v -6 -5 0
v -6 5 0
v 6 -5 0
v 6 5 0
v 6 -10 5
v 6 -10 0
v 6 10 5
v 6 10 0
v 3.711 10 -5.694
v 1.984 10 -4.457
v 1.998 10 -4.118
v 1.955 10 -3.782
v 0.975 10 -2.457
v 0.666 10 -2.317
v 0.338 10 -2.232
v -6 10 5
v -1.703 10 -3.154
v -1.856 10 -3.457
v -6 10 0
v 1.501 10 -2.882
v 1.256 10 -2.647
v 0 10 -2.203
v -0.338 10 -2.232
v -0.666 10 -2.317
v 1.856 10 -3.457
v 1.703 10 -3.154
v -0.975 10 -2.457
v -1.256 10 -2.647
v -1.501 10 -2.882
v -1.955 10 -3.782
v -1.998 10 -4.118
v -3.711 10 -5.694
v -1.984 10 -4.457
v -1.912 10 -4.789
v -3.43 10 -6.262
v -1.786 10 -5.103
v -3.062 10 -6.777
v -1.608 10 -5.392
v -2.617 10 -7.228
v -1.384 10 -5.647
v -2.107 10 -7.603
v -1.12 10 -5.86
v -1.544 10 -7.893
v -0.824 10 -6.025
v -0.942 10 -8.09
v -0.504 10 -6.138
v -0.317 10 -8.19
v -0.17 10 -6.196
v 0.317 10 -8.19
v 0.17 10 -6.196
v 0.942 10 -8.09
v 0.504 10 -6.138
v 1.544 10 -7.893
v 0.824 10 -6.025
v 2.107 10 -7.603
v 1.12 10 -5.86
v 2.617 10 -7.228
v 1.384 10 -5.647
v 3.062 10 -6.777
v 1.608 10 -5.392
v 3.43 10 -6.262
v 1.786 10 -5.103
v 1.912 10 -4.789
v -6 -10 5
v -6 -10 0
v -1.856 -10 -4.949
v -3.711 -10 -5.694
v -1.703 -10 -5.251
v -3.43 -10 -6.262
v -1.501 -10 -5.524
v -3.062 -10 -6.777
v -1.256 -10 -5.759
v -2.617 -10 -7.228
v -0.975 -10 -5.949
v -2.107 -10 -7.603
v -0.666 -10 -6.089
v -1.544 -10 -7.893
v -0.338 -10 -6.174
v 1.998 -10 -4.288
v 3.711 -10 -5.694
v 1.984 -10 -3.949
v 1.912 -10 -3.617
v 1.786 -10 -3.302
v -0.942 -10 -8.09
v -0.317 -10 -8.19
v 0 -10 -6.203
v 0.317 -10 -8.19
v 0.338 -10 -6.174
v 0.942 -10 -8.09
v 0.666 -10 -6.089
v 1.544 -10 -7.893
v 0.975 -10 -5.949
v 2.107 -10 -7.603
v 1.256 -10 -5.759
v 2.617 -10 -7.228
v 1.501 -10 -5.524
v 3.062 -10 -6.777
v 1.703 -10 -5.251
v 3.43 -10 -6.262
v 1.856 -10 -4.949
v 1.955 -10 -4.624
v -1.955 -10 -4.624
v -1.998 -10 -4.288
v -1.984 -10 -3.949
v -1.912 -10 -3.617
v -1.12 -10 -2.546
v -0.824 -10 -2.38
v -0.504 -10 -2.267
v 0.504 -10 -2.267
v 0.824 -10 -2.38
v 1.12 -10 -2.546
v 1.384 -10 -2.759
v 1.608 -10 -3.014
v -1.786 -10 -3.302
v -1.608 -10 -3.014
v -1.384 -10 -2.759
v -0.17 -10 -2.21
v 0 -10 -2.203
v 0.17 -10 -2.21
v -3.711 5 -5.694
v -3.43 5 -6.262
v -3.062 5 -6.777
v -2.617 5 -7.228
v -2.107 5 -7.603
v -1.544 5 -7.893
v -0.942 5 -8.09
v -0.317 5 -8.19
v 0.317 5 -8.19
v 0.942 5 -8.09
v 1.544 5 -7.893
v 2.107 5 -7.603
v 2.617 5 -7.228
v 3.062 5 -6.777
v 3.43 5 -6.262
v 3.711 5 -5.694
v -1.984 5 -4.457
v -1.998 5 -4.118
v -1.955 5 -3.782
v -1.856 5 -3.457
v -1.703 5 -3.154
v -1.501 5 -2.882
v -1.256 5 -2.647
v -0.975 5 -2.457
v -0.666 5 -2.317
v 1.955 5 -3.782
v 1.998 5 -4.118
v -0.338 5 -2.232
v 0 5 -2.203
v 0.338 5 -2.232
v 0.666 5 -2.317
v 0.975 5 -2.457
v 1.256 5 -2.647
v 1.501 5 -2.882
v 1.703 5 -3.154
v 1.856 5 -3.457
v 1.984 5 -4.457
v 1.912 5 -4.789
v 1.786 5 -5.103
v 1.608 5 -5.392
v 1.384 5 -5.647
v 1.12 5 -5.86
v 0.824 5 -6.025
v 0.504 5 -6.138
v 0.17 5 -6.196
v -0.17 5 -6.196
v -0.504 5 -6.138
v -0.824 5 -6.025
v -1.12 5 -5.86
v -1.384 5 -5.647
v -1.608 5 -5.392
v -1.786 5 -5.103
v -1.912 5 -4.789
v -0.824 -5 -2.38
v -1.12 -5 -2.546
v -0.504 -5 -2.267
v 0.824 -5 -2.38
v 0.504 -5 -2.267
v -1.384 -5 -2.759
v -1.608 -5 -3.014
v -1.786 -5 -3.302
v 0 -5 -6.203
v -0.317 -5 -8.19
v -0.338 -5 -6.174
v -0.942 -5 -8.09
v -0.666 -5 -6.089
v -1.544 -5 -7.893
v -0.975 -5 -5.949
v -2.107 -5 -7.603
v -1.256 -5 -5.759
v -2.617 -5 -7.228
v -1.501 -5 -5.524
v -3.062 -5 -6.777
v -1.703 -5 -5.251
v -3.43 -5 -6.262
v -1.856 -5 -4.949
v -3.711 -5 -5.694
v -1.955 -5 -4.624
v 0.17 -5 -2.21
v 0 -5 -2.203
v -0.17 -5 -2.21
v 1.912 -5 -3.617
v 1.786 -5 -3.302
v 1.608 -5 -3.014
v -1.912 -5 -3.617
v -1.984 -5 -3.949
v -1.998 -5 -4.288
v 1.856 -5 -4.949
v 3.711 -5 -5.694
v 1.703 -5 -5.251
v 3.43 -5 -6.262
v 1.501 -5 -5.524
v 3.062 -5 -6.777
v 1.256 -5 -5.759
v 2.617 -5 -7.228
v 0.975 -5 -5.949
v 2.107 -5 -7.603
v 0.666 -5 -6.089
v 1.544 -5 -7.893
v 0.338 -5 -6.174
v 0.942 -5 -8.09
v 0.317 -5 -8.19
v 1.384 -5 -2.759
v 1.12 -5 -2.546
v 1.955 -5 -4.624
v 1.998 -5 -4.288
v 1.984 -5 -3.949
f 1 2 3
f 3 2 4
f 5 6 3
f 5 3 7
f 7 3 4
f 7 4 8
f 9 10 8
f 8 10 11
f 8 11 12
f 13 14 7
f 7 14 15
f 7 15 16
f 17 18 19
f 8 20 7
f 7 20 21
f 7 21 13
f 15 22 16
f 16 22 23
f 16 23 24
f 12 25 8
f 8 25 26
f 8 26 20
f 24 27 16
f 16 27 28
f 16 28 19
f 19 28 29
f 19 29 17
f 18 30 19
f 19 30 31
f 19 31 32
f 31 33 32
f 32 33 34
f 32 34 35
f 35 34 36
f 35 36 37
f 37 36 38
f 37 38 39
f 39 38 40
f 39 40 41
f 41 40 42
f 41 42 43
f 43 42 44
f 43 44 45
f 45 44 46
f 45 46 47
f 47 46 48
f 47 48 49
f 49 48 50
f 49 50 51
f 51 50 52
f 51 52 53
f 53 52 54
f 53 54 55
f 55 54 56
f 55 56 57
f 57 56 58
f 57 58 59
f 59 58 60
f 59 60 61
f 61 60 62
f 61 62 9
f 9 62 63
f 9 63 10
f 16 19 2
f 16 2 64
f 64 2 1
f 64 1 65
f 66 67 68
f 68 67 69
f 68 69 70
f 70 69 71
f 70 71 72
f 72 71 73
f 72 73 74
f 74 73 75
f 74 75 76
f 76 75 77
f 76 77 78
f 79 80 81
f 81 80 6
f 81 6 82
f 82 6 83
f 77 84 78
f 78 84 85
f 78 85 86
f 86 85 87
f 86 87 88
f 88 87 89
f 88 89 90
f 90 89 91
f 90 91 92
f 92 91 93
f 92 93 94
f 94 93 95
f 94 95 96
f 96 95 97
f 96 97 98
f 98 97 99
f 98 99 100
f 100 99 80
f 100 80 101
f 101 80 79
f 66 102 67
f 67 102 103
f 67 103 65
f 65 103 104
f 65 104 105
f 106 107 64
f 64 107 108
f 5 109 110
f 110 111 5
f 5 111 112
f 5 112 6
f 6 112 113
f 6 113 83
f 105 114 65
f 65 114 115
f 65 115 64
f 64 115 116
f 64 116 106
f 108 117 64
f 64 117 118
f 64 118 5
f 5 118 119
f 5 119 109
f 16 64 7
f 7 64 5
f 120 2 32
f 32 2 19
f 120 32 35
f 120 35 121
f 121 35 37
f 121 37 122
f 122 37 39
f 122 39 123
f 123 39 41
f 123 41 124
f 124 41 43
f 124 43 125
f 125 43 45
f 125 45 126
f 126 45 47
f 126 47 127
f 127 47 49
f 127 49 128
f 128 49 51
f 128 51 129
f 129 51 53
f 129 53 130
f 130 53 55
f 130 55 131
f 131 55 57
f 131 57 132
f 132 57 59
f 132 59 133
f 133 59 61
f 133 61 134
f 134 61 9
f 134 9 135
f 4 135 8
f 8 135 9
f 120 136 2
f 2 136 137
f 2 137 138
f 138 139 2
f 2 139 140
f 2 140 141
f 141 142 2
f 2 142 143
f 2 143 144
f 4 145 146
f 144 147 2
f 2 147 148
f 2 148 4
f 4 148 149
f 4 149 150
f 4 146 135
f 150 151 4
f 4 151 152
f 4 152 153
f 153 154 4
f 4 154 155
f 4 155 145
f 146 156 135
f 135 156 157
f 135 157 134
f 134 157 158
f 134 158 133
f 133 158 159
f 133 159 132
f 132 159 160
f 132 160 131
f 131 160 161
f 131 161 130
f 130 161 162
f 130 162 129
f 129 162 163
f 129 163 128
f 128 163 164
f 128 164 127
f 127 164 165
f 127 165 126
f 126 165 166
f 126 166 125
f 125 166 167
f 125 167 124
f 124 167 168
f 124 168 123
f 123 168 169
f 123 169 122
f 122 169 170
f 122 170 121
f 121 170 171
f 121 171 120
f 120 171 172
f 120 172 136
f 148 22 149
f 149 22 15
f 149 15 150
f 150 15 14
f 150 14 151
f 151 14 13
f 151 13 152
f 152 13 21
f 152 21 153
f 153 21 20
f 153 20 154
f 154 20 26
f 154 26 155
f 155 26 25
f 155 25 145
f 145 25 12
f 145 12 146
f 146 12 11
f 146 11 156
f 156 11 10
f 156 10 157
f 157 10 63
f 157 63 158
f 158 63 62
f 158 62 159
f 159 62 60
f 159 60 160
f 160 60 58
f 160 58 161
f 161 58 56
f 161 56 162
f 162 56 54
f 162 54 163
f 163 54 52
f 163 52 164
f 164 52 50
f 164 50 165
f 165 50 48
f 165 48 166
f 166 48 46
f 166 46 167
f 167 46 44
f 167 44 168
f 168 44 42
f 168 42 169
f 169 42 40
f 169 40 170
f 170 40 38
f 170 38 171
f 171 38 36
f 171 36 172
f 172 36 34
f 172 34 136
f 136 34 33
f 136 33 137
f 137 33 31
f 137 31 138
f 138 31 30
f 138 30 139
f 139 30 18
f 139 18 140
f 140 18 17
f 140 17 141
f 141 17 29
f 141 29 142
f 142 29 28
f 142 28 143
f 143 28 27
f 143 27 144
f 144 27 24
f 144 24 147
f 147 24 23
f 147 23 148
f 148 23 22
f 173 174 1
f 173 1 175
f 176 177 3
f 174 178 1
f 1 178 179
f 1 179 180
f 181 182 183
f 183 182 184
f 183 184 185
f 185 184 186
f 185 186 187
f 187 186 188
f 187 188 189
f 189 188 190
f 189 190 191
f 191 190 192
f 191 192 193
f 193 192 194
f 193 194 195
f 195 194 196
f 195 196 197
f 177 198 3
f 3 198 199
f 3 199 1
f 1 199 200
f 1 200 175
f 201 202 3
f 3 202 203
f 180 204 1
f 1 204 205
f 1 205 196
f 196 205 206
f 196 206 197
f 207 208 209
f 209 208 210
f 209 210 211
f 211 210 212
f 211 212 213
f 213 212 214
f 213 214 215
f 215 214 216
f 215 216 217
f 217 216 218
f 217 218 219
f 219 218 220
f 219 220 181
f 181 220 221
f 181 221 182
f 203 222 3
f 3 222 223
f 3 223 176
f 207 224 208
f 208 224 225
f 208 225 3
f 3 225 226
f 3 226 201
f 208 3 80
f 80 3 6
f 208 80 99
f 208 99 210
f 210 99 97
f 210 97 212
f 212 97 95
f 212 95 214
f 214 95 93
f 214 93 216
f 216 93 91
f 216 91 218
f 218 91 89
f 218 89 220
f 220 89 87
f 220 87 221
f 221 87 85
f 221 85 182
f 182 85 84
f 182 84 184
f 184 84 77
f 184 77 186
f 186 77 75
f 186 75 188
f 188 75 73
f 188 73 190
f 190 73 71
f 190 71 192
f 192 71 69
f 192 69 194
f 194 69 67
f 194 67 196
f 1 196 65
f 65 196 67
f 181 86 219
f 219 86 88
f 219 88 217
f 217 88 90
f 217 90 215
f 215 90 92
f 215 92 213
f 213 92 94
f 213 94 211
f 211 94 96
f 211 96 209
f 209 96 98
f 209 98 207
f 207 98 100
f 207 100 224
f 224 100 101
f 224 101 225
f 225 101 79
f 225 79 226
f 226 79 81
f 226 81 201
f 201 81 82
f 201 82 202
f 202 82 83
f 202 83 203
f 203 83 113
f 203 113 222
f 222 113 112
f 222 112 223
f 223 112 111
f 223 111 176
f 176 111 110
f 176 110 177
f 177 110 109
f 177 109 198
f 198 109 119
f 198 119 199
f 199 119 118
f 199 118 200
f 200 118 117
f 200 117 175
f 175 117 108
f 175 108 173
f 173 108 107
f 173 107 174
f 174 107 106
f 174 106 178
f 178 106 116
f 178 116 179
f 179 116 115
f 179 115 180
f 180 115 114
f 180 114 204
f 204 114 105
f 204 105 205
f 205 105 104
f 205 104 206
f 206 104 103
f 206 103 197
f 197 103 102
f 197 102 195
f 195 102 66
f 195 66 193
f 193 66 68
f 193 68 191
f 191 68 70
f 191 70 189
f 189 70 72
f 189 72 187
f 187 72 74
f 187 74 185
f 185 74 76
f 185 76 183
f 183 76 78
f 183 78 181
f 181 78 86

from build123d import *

# Parameters (mm, degrees)
SKETCH1_W           = 12
SKETCH1_H           = 20
BOSS_EXTRUDE1_DEPTH = 5
SKETCH2_R           = 2
BOSS_EXTRUDE2_DEPTH = 5


with BuildPart() as part:
    # Sketch1 → Boss-Extrude1 (new body)
    with BuildSketch(Plane.XY):
        Rectangle(SKETCH1_W, SKETCH1_H)
    extrude(amount=BOSS_EXTRUDE1_DEPTH)

    # Sketch2 → Boss-Extrude2 (add)
    with BuildSketch(Plane(origin=(0, 10, 0), x_dir=(1, 0, 0), z_dir=(0, 1, 0))):
        with BuildLine():
            Line((-6, 0), (-3.711490956, 5.694454764))
            ThreePointArc((-3.711490956, 5.694454764), (0, 8.202866725), (3.711490956, 5.694454764))
            Line((3.711490956, 5.694454764), (6, 0))
            Line((6, 0), (-6, 0))
        make_face()
        with Locations(Location((0, 4.202866725, 0), (0, 0, 270))):
            Circle(SKETCH2_R, mode=Mode.SUBTRACT)
    boss_extrude2 = extrude(amount=-BOSS_EXTRUDE2_DEPTH)

    # Mirror1: Boss-Extrude2 across plane
    add(boss_extrude2.mirror(Plane.ZX))


solid = part.part
